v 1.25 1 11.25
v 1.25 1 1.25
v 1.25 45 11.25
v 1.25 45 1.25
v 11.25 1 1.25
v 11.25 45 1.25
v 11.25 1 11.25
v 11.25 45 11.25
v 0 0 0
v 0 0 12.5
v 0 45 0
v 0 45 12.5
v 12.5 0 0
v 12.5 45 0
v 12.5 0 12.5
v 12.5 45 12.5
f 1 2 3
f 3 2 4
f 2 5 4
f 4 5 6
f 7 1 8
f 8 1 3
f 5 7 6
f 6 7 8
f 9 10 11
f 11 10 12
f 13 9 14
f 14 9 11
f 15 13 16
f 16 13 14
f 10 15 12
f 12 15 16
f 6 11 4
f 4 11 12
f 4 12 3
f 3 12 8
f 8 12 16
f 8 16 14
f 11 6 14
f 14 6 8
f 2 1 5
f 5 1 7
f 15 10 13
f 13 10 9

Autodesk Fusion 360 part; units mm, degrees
sketch "Sketch1" plane through (0, 0, 0) normal (0, 1, 0) x (1, 0, 0)
  line L0 (0, 0) -> (12.5, 0)
  line L1 (12.5, 0) -> (12.5, -12.5)
  line L2 (12.5, -12.5) -> (0, -12.5)
  line L3 (0, -12.5) -> (0, 0)
  line L4 (11.25, -11.25) -> (1.25, -11.25)
  line L5 (1.25, -11.25) -> (1.25, -1.25)
  line L6 (1.25, -1.25) -> (11.25, -1.25)
  line L7 (11.25, -1.25) -> (11.25, -11.25)
  dimension "d1" = 12.5
  dimension "d2" = 90
  dimension "d3" = 12.5
  dimension "d4" = 1.25
extrude "Extrude1" add sketch "Sketch1" along normal blind 1 contours L4 L5 L6 L7
extrude "Extrude2" add sketch "Sketch1" along normal blind 45
